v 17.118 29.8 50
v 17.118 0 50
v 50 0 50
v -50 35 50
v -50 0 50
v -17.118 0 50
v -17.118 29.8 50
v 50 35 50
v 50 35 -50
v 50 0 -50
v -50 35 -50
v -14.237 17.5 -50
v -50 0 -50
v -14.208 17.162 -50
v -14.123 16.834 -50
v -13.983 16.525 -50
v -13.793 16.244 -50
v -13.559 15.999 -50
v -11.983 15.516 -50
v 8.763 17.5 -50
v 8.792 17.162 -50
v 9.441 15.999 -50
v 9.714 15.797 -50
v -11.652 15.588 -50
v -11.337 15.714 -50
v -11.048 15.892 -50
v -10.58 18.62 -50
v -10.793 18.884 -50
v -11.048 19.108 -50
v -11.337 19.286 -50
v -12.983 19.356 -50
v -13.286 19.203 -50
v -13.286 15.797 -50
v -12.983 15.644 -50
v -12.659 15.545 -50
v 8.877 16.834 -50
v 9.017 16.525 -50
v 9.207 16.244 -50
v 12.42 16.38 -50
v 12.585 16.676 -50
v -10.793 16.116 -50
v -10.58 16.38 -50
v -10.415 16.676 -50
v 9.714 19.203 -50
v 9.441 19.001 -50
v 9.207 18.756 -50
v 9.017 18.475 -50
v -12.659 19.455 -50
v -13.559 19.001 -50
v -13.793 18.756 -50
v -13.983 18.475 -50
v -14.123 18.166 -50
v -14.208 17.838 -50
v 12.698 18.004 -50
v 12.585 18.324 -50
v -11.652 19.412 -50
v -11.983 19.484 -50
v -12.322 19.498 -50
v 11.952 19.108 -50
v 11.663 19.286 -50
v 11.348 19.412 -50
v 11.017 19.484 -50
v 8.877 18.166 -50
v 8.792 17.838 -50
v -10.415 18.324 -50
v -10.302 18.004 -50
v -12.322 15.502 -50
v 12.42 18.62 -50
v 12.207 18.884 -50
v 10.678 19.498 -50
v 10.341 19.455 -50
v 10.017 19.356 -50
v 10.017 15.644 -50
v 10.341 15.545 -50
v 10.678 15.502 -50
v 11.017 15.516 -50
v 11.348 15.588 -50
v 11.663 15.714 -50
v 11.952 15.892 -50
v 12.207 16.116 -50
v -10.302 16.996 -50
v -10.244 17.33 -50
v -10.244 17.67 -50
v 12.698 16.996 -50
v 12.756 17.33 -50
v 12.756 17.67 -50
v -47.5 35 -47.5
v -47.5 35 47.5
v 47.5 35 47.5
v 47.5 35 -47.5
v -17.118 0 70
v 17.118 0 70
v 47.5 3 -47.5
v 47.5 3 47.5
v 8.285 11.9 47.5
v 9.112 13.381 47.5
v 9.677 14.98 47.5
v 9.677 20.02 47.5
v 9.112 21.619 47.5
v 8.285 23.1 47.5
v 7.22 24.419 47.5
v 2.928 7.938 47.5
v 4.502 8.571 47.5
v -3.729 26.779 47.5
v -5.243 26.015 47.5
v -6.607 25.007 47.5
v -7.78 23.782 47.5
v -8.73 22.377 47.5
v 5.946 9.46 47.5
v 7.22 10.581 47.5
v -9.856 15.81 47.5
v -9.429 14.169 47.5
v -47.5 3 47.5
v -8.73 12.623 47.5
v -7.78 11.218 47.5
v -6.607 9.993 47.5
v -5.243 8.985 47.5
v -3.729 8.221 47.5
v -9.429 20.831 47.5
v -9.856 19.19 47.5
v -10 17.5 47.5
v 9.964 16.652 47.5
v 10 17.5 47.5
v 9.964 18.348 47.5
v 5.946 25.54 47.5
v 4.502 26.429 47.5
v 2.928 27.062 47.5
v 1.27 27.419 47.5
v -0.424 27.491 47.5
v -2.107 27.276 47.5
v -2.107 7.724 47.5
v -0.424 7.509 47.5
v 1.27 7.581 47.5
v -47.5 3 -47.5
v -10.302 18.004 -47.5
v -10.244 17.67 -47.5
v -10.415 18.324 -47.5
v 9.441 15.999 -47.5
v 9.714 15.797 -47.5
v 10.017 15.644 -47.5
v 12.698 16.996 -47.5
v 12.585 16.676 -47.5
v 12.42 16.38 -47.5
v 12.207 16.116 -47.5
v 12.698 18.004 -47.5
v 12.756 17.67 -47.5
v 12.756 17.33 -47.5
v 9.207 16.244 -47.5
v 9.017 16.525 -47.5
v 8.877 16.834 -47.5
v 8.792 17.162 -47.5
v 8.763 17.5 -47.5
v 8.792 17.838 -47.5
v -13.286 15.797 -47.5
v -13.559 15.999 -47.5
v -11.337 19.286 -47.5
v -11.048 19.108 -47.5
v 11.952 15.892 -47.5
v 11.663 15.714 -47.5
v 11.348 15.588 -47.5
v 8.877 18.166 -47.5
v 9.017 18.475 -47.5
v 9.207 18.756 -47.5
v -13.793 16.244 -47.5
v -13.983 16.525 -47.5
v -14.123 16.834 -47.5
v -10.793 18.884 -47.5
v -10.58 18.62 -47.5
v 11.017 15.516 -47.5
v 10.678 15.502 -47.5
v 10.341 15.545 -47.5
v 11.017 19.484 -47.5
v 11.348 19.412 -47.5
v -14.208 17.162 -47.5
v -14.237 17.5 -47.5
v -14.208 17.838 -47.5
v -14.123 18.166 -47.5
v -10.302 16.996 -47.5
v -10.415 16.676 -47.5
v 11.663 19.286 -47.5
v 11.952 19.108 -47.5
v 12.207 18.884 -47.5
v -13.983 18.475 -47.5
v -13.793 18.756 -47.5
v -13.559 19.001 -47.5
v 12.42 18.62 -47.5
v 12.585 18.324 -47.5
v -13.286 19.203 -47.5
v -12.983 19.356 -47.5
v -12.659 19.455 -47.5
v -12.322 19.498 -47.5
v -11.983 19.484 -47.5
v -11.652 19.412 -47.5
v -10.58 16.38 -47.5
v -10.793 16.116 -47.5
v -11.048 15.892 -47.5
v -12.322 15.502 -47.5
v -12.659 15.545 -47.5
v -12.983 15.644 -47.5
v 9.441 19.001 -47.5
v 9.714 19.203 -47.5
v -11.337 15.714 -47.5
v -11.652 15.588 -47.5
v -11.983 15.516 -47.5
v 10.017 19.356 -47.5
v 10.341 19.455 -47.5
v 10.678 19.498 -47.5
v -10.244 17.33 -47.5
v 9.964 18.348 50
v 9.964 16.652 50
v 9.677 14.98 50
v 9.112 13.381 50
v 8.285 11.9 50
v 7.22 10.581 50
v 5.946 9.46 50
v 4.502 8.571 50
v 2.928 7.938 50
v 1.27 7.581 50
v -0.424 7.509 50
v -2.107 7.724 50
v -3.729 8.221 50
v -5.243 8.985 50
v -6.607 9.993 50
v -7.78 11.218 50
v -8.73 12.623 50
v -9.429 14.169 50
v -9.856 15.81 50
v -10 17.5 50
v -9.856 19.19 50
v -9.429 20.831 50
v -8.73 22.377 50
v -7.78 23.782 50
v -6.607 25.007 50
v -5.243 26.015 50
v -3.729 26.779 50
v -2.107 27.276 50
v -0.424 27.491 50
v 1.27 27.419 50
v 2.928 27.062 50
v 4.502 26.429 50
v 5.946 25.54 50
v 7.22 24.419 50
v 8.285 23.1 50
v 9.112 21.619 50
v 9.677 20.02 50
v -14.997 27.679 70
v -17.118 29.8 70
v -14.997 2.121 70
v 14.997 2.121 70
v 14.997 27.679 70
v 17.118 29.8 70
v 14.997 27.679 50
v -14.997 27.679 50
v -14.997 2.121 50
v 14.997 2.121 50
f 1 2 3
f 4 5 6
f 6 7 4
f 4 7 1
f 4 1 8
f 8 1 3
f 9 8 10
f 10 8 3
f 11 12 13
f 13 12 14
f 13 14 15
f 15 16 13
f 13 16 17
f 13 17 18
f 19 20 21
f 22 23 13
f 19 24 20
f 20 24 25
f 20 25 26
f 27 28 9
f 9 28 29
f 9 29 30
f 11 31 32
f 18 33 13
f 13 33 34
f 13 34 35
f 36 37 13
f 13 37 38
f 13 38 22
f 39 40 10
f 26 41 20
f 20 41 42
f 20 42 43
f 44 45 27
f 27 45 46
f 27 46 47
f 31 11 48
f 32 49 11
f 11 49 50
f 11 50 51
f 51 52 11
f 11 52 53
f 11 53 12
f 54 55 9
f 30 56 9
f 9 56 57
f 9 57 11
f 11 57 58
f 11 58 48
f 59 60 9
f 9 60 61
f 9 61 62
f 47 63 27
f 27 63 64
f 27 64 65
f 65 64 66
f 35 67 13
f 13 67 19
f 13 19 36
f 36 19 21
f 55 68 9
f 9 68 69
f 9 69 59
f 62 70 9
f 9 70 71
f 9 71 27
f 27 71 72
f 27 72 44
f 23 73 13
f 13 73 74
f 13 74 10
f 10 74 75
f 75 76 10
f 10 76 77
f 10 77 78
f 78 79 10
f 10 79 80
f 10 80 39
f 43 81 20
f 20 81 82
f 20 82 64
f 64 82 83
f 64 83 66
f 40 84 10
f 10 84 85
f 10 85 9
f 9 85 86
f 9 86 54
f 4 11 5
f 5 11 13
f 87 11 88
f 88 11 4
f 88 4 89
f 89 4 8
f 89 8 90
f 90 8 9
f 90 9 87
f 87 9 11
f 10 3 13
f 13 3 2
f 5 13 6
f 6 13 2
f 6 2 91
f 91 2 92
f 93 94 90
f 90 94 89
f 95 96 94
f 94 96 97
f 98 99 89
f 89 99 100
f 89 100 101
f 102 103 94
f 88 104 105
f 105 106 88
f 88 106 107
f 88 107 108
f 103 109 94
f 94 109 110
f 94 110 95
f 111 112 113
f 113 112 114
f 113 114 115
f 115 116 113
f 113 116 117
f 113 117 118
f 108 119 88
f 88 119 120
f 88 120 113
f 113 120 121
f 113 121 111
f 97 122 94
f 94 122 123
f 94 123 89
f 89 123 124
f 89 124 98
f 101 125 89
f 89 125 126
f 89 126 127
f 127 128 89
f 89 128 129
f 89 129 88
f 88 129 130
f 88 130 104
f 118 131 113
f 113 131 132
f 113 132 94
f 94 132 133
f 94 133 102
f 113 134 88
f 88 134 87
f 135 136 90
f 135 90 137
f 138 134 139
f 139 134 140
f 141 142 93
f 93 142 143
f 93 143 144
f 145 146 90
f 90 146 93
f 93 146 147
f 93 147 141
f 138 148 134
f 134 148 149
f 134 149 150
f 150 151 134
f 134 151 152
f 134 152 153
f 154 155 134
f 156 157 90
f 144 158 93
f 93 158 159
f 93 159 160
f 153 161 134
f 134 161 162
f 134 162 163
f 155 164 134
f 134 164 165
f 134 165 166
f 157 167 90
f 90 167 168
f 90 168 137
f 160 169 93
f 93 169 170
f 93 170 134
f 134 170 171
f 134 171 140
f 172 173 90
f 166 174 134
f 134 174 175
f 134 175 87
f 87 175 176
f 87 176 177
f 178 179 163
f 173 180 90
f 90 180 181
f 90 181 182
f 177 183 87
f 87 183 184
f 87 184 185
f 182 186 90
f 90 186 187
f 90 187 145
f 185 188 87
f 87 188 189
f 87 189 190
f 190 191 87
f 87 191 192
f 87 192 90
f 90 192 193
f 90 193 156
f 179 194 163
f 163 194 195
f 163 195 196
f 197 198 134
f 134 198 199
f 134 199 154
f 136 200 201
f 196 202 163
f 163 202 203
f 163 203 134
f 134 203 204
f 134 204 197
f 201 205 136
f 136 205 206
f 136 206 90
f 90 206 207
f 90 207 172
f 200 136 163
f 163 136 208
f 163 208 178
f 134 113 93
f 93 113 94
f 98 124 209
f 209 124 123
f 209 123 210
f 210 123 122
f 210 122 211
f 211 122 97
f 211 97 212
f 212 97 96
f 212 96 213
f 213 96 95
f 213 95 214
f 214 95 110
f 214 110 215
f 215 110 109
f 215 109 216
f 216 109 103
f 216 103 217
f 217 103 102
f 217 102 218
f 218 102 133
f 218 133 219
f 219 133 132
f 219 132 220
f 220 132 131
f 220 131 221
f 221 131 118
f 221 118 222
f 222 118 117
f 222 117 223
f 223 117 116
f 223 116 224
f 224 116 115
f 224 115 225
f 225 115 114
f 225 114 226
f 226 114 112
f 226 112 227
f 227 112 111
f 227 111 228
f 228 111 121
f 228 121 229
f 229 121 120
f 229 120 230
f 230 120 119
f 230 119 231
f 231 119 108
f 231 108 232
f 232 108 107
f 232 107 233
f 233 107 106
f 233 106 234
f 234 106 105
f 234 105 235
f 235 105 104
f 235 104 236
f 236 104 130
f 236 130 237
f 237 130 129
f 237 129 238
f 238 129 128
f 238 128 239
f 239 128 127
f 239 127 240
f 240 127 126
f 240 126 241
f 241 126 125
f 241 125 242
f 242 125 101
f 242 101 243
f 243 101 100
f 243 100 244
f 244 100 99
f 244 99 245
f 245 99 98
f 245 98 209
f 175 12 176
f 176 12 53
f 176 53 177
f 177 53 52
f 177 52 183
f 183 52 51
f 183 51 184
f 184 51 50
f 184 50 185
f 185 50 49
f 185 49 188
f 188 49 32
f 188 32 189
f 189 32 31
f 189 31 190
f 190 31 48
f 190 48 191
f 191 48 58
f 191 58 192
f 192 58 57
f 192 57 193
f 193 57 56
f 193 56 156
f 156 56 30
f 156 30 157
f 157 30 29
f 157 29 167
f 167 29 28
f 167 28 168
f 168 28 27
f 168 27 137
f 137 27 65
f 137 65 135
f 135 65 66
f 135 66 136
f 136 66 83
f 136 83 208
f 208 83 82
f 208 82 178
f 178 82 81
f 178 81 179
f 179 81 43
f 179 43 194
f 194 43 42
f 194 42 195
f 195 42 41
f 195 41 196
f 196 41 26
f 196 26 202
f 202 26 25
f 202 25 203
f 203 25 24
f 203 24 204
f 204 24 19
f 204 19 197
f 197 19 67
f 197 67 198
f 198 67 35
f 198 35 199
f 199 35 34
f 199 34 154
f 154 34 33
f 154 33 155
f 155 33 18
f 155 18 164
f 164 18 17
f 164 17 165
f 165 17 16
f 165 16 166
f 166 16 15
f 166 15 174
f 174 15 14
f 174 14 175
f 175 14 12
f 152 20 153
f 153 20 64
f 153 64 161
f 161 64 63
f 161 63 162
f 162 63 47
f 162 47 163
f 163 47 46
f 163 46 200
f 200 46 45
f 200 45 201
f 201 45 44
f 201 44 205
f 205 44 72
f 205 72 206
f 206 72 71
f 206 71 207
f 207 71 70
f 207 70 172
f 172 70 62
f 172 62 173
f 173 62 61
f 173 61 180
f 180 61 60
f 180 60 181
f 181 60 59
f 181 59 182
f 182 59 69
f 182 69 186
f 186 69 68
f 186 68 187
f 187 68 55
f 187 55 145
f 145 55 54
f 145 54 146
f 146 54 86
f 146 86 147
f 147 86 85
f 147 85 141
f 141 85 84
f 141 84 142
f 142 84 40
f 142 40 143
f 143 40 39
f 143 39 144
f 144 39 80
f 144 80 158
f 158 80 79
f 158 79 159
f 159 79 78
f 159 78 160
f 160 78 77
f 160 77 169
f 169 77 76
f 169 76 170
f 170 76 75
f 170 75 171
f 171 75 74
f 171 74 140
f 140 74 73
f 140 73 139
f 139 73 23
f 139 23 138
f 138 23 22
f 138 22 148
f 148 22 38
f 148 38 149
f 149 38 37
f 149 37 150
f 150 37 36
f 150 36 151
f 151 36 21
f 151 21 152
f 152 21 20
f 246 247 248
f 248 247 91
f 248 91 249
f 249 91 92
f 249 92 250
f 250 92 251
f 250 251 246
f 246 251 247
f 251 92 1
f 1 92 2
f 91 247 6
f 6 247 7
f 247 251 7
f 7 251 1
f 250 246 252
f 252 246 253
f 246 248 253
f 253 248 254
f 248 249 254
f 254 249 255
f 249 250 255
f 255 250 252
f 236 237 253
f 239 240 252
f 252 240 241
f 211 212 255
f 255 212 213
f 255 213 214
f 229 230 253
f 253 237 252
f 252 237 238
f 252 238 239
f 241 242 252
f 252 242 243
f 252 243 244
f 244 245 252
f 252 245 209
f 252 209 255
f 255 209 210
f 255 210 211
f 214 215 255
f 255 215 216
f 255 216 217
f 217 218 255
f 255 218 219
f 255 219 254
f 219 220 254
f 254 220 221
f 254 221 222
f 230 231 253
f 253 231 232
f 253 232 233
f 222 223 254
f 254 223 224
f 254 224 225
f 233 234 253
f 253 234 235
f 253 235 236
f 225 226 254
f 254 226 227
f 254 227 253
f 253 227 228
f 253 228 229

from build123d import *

# Parameters (mm, degrees)
SKETCH_1_W               = 100
SKETCH_1_H               = 100
EXTRUDE_1_DEPTH          = 35
SKETCH_2_W               = 95
SKETCH_2_H               = 95
CUT_EXTRUDE_1_DEPTH      = 32
CUT_EXTRUDE_2_DEPTH      = 118.153745139
CUT_EXTRUDE_2_DEPTH_BACK = 32
SKETCH_3_R               = 10
SKETCH_4_R               = 2
CUT_EXTRUDE_3_DEPTH      = 32
EXTRUDE_2_DEPTH          = 20
SKETCH_6_W               = 29.993378998
SKETCH_6_H               = 25.557725667
CUT_EXTRUDE_4_DEPTH      = 118.153745139


with BuildPart() as part:
    # Эскиз1 → Бобышка-Вытянуть1 (new body)
    with BuildSketch(Plane(origin=(0, 0, 0), x_dir=(1, 0, 0), z_dir=(0, 1, 0))):
        Rectangle(SKETCH_1_W, SKETCH_1_H)
    extrude(amount=EXTRUDE_1_DEPTH)

    # Эскиз2 → Вырез-Вытянуть1 (cut)
    with BuildSketch(Plane(origin=(0, 35, 0), x_dir=(1, 0, 0), z_dir=(0, 1, 0))):
        Rectangle(SKETCH_2_W, SKETCH_2_H)
    extrude(amount=-CUT_EXTRUDE_1_DEPTH, mode=Mode.SUBTRACT)

    # Эскиз3 → Вырез-Вытянуть2 (cut, two sides: drawn at the far end of the back side and taken through both)
    with BuildSketch(Plane.XY.offset(50).offset(-CUT_EXTRUDE_2_DEPTH_BACK)):
        with Locations(Location((0, 17.5, 0), (0, 0, 180))):
            Circle(SKETCH_3_R)
    extrude(amount=CUT_EXTRUDE_2_DEPTH + CUT_EXTRUDE_2_DEPTH_BACK, mode=Mode.SUBTRACT)

    # Эскиз4 → Вырез-Вытянуть3 (cut)
    with BuildSketch(Plane(origin=(0, 0, -50), x_dir=(-1, 0, 0), z_dir=(0, 0, -1))):
        with Locations((-10.76282056, 17.5)):
            Circle(SKETCH_4_R)
        with Locations((12.23717944, 17.5)):
            Circle(SKETCH_4_R)
    extrude(amount=-CUT_EXTRUDE_3_DEPTH, mode=Mode.SUBTRACT)

    # Эскиз5 → Бобышка-Вытянуть2 (add)
    with BuildSketch(Plane.XY.offset(50)):
        Polygon((-17.118009843, 5.199633646), (-17.118009843, 0), (17.118009843, 0), (17.118009843, 5.199633646), (17.118009843, 29.800366354), (-17.118009843, 29.800366354), align=None)
    extrude(amount=EXTRUDE_2_DEPTH)

    # Эскиз6 → Вырез-Вытянуть4 (cut, through all)
    with BuildSketch(Plane(origin=(0, 0, 50), x_dir=(-1, 0, 0), z_dir=(0, 0, -1))):
        with Locations((0, 14.900183178)):
            Rectangle(SKETCH_6_W, SKETCH_6_H)
    extrude(amount=-CUT_EXTRUDE_4_DEPTH, mode=Mode.SUBTRACT)


solid = part.part
